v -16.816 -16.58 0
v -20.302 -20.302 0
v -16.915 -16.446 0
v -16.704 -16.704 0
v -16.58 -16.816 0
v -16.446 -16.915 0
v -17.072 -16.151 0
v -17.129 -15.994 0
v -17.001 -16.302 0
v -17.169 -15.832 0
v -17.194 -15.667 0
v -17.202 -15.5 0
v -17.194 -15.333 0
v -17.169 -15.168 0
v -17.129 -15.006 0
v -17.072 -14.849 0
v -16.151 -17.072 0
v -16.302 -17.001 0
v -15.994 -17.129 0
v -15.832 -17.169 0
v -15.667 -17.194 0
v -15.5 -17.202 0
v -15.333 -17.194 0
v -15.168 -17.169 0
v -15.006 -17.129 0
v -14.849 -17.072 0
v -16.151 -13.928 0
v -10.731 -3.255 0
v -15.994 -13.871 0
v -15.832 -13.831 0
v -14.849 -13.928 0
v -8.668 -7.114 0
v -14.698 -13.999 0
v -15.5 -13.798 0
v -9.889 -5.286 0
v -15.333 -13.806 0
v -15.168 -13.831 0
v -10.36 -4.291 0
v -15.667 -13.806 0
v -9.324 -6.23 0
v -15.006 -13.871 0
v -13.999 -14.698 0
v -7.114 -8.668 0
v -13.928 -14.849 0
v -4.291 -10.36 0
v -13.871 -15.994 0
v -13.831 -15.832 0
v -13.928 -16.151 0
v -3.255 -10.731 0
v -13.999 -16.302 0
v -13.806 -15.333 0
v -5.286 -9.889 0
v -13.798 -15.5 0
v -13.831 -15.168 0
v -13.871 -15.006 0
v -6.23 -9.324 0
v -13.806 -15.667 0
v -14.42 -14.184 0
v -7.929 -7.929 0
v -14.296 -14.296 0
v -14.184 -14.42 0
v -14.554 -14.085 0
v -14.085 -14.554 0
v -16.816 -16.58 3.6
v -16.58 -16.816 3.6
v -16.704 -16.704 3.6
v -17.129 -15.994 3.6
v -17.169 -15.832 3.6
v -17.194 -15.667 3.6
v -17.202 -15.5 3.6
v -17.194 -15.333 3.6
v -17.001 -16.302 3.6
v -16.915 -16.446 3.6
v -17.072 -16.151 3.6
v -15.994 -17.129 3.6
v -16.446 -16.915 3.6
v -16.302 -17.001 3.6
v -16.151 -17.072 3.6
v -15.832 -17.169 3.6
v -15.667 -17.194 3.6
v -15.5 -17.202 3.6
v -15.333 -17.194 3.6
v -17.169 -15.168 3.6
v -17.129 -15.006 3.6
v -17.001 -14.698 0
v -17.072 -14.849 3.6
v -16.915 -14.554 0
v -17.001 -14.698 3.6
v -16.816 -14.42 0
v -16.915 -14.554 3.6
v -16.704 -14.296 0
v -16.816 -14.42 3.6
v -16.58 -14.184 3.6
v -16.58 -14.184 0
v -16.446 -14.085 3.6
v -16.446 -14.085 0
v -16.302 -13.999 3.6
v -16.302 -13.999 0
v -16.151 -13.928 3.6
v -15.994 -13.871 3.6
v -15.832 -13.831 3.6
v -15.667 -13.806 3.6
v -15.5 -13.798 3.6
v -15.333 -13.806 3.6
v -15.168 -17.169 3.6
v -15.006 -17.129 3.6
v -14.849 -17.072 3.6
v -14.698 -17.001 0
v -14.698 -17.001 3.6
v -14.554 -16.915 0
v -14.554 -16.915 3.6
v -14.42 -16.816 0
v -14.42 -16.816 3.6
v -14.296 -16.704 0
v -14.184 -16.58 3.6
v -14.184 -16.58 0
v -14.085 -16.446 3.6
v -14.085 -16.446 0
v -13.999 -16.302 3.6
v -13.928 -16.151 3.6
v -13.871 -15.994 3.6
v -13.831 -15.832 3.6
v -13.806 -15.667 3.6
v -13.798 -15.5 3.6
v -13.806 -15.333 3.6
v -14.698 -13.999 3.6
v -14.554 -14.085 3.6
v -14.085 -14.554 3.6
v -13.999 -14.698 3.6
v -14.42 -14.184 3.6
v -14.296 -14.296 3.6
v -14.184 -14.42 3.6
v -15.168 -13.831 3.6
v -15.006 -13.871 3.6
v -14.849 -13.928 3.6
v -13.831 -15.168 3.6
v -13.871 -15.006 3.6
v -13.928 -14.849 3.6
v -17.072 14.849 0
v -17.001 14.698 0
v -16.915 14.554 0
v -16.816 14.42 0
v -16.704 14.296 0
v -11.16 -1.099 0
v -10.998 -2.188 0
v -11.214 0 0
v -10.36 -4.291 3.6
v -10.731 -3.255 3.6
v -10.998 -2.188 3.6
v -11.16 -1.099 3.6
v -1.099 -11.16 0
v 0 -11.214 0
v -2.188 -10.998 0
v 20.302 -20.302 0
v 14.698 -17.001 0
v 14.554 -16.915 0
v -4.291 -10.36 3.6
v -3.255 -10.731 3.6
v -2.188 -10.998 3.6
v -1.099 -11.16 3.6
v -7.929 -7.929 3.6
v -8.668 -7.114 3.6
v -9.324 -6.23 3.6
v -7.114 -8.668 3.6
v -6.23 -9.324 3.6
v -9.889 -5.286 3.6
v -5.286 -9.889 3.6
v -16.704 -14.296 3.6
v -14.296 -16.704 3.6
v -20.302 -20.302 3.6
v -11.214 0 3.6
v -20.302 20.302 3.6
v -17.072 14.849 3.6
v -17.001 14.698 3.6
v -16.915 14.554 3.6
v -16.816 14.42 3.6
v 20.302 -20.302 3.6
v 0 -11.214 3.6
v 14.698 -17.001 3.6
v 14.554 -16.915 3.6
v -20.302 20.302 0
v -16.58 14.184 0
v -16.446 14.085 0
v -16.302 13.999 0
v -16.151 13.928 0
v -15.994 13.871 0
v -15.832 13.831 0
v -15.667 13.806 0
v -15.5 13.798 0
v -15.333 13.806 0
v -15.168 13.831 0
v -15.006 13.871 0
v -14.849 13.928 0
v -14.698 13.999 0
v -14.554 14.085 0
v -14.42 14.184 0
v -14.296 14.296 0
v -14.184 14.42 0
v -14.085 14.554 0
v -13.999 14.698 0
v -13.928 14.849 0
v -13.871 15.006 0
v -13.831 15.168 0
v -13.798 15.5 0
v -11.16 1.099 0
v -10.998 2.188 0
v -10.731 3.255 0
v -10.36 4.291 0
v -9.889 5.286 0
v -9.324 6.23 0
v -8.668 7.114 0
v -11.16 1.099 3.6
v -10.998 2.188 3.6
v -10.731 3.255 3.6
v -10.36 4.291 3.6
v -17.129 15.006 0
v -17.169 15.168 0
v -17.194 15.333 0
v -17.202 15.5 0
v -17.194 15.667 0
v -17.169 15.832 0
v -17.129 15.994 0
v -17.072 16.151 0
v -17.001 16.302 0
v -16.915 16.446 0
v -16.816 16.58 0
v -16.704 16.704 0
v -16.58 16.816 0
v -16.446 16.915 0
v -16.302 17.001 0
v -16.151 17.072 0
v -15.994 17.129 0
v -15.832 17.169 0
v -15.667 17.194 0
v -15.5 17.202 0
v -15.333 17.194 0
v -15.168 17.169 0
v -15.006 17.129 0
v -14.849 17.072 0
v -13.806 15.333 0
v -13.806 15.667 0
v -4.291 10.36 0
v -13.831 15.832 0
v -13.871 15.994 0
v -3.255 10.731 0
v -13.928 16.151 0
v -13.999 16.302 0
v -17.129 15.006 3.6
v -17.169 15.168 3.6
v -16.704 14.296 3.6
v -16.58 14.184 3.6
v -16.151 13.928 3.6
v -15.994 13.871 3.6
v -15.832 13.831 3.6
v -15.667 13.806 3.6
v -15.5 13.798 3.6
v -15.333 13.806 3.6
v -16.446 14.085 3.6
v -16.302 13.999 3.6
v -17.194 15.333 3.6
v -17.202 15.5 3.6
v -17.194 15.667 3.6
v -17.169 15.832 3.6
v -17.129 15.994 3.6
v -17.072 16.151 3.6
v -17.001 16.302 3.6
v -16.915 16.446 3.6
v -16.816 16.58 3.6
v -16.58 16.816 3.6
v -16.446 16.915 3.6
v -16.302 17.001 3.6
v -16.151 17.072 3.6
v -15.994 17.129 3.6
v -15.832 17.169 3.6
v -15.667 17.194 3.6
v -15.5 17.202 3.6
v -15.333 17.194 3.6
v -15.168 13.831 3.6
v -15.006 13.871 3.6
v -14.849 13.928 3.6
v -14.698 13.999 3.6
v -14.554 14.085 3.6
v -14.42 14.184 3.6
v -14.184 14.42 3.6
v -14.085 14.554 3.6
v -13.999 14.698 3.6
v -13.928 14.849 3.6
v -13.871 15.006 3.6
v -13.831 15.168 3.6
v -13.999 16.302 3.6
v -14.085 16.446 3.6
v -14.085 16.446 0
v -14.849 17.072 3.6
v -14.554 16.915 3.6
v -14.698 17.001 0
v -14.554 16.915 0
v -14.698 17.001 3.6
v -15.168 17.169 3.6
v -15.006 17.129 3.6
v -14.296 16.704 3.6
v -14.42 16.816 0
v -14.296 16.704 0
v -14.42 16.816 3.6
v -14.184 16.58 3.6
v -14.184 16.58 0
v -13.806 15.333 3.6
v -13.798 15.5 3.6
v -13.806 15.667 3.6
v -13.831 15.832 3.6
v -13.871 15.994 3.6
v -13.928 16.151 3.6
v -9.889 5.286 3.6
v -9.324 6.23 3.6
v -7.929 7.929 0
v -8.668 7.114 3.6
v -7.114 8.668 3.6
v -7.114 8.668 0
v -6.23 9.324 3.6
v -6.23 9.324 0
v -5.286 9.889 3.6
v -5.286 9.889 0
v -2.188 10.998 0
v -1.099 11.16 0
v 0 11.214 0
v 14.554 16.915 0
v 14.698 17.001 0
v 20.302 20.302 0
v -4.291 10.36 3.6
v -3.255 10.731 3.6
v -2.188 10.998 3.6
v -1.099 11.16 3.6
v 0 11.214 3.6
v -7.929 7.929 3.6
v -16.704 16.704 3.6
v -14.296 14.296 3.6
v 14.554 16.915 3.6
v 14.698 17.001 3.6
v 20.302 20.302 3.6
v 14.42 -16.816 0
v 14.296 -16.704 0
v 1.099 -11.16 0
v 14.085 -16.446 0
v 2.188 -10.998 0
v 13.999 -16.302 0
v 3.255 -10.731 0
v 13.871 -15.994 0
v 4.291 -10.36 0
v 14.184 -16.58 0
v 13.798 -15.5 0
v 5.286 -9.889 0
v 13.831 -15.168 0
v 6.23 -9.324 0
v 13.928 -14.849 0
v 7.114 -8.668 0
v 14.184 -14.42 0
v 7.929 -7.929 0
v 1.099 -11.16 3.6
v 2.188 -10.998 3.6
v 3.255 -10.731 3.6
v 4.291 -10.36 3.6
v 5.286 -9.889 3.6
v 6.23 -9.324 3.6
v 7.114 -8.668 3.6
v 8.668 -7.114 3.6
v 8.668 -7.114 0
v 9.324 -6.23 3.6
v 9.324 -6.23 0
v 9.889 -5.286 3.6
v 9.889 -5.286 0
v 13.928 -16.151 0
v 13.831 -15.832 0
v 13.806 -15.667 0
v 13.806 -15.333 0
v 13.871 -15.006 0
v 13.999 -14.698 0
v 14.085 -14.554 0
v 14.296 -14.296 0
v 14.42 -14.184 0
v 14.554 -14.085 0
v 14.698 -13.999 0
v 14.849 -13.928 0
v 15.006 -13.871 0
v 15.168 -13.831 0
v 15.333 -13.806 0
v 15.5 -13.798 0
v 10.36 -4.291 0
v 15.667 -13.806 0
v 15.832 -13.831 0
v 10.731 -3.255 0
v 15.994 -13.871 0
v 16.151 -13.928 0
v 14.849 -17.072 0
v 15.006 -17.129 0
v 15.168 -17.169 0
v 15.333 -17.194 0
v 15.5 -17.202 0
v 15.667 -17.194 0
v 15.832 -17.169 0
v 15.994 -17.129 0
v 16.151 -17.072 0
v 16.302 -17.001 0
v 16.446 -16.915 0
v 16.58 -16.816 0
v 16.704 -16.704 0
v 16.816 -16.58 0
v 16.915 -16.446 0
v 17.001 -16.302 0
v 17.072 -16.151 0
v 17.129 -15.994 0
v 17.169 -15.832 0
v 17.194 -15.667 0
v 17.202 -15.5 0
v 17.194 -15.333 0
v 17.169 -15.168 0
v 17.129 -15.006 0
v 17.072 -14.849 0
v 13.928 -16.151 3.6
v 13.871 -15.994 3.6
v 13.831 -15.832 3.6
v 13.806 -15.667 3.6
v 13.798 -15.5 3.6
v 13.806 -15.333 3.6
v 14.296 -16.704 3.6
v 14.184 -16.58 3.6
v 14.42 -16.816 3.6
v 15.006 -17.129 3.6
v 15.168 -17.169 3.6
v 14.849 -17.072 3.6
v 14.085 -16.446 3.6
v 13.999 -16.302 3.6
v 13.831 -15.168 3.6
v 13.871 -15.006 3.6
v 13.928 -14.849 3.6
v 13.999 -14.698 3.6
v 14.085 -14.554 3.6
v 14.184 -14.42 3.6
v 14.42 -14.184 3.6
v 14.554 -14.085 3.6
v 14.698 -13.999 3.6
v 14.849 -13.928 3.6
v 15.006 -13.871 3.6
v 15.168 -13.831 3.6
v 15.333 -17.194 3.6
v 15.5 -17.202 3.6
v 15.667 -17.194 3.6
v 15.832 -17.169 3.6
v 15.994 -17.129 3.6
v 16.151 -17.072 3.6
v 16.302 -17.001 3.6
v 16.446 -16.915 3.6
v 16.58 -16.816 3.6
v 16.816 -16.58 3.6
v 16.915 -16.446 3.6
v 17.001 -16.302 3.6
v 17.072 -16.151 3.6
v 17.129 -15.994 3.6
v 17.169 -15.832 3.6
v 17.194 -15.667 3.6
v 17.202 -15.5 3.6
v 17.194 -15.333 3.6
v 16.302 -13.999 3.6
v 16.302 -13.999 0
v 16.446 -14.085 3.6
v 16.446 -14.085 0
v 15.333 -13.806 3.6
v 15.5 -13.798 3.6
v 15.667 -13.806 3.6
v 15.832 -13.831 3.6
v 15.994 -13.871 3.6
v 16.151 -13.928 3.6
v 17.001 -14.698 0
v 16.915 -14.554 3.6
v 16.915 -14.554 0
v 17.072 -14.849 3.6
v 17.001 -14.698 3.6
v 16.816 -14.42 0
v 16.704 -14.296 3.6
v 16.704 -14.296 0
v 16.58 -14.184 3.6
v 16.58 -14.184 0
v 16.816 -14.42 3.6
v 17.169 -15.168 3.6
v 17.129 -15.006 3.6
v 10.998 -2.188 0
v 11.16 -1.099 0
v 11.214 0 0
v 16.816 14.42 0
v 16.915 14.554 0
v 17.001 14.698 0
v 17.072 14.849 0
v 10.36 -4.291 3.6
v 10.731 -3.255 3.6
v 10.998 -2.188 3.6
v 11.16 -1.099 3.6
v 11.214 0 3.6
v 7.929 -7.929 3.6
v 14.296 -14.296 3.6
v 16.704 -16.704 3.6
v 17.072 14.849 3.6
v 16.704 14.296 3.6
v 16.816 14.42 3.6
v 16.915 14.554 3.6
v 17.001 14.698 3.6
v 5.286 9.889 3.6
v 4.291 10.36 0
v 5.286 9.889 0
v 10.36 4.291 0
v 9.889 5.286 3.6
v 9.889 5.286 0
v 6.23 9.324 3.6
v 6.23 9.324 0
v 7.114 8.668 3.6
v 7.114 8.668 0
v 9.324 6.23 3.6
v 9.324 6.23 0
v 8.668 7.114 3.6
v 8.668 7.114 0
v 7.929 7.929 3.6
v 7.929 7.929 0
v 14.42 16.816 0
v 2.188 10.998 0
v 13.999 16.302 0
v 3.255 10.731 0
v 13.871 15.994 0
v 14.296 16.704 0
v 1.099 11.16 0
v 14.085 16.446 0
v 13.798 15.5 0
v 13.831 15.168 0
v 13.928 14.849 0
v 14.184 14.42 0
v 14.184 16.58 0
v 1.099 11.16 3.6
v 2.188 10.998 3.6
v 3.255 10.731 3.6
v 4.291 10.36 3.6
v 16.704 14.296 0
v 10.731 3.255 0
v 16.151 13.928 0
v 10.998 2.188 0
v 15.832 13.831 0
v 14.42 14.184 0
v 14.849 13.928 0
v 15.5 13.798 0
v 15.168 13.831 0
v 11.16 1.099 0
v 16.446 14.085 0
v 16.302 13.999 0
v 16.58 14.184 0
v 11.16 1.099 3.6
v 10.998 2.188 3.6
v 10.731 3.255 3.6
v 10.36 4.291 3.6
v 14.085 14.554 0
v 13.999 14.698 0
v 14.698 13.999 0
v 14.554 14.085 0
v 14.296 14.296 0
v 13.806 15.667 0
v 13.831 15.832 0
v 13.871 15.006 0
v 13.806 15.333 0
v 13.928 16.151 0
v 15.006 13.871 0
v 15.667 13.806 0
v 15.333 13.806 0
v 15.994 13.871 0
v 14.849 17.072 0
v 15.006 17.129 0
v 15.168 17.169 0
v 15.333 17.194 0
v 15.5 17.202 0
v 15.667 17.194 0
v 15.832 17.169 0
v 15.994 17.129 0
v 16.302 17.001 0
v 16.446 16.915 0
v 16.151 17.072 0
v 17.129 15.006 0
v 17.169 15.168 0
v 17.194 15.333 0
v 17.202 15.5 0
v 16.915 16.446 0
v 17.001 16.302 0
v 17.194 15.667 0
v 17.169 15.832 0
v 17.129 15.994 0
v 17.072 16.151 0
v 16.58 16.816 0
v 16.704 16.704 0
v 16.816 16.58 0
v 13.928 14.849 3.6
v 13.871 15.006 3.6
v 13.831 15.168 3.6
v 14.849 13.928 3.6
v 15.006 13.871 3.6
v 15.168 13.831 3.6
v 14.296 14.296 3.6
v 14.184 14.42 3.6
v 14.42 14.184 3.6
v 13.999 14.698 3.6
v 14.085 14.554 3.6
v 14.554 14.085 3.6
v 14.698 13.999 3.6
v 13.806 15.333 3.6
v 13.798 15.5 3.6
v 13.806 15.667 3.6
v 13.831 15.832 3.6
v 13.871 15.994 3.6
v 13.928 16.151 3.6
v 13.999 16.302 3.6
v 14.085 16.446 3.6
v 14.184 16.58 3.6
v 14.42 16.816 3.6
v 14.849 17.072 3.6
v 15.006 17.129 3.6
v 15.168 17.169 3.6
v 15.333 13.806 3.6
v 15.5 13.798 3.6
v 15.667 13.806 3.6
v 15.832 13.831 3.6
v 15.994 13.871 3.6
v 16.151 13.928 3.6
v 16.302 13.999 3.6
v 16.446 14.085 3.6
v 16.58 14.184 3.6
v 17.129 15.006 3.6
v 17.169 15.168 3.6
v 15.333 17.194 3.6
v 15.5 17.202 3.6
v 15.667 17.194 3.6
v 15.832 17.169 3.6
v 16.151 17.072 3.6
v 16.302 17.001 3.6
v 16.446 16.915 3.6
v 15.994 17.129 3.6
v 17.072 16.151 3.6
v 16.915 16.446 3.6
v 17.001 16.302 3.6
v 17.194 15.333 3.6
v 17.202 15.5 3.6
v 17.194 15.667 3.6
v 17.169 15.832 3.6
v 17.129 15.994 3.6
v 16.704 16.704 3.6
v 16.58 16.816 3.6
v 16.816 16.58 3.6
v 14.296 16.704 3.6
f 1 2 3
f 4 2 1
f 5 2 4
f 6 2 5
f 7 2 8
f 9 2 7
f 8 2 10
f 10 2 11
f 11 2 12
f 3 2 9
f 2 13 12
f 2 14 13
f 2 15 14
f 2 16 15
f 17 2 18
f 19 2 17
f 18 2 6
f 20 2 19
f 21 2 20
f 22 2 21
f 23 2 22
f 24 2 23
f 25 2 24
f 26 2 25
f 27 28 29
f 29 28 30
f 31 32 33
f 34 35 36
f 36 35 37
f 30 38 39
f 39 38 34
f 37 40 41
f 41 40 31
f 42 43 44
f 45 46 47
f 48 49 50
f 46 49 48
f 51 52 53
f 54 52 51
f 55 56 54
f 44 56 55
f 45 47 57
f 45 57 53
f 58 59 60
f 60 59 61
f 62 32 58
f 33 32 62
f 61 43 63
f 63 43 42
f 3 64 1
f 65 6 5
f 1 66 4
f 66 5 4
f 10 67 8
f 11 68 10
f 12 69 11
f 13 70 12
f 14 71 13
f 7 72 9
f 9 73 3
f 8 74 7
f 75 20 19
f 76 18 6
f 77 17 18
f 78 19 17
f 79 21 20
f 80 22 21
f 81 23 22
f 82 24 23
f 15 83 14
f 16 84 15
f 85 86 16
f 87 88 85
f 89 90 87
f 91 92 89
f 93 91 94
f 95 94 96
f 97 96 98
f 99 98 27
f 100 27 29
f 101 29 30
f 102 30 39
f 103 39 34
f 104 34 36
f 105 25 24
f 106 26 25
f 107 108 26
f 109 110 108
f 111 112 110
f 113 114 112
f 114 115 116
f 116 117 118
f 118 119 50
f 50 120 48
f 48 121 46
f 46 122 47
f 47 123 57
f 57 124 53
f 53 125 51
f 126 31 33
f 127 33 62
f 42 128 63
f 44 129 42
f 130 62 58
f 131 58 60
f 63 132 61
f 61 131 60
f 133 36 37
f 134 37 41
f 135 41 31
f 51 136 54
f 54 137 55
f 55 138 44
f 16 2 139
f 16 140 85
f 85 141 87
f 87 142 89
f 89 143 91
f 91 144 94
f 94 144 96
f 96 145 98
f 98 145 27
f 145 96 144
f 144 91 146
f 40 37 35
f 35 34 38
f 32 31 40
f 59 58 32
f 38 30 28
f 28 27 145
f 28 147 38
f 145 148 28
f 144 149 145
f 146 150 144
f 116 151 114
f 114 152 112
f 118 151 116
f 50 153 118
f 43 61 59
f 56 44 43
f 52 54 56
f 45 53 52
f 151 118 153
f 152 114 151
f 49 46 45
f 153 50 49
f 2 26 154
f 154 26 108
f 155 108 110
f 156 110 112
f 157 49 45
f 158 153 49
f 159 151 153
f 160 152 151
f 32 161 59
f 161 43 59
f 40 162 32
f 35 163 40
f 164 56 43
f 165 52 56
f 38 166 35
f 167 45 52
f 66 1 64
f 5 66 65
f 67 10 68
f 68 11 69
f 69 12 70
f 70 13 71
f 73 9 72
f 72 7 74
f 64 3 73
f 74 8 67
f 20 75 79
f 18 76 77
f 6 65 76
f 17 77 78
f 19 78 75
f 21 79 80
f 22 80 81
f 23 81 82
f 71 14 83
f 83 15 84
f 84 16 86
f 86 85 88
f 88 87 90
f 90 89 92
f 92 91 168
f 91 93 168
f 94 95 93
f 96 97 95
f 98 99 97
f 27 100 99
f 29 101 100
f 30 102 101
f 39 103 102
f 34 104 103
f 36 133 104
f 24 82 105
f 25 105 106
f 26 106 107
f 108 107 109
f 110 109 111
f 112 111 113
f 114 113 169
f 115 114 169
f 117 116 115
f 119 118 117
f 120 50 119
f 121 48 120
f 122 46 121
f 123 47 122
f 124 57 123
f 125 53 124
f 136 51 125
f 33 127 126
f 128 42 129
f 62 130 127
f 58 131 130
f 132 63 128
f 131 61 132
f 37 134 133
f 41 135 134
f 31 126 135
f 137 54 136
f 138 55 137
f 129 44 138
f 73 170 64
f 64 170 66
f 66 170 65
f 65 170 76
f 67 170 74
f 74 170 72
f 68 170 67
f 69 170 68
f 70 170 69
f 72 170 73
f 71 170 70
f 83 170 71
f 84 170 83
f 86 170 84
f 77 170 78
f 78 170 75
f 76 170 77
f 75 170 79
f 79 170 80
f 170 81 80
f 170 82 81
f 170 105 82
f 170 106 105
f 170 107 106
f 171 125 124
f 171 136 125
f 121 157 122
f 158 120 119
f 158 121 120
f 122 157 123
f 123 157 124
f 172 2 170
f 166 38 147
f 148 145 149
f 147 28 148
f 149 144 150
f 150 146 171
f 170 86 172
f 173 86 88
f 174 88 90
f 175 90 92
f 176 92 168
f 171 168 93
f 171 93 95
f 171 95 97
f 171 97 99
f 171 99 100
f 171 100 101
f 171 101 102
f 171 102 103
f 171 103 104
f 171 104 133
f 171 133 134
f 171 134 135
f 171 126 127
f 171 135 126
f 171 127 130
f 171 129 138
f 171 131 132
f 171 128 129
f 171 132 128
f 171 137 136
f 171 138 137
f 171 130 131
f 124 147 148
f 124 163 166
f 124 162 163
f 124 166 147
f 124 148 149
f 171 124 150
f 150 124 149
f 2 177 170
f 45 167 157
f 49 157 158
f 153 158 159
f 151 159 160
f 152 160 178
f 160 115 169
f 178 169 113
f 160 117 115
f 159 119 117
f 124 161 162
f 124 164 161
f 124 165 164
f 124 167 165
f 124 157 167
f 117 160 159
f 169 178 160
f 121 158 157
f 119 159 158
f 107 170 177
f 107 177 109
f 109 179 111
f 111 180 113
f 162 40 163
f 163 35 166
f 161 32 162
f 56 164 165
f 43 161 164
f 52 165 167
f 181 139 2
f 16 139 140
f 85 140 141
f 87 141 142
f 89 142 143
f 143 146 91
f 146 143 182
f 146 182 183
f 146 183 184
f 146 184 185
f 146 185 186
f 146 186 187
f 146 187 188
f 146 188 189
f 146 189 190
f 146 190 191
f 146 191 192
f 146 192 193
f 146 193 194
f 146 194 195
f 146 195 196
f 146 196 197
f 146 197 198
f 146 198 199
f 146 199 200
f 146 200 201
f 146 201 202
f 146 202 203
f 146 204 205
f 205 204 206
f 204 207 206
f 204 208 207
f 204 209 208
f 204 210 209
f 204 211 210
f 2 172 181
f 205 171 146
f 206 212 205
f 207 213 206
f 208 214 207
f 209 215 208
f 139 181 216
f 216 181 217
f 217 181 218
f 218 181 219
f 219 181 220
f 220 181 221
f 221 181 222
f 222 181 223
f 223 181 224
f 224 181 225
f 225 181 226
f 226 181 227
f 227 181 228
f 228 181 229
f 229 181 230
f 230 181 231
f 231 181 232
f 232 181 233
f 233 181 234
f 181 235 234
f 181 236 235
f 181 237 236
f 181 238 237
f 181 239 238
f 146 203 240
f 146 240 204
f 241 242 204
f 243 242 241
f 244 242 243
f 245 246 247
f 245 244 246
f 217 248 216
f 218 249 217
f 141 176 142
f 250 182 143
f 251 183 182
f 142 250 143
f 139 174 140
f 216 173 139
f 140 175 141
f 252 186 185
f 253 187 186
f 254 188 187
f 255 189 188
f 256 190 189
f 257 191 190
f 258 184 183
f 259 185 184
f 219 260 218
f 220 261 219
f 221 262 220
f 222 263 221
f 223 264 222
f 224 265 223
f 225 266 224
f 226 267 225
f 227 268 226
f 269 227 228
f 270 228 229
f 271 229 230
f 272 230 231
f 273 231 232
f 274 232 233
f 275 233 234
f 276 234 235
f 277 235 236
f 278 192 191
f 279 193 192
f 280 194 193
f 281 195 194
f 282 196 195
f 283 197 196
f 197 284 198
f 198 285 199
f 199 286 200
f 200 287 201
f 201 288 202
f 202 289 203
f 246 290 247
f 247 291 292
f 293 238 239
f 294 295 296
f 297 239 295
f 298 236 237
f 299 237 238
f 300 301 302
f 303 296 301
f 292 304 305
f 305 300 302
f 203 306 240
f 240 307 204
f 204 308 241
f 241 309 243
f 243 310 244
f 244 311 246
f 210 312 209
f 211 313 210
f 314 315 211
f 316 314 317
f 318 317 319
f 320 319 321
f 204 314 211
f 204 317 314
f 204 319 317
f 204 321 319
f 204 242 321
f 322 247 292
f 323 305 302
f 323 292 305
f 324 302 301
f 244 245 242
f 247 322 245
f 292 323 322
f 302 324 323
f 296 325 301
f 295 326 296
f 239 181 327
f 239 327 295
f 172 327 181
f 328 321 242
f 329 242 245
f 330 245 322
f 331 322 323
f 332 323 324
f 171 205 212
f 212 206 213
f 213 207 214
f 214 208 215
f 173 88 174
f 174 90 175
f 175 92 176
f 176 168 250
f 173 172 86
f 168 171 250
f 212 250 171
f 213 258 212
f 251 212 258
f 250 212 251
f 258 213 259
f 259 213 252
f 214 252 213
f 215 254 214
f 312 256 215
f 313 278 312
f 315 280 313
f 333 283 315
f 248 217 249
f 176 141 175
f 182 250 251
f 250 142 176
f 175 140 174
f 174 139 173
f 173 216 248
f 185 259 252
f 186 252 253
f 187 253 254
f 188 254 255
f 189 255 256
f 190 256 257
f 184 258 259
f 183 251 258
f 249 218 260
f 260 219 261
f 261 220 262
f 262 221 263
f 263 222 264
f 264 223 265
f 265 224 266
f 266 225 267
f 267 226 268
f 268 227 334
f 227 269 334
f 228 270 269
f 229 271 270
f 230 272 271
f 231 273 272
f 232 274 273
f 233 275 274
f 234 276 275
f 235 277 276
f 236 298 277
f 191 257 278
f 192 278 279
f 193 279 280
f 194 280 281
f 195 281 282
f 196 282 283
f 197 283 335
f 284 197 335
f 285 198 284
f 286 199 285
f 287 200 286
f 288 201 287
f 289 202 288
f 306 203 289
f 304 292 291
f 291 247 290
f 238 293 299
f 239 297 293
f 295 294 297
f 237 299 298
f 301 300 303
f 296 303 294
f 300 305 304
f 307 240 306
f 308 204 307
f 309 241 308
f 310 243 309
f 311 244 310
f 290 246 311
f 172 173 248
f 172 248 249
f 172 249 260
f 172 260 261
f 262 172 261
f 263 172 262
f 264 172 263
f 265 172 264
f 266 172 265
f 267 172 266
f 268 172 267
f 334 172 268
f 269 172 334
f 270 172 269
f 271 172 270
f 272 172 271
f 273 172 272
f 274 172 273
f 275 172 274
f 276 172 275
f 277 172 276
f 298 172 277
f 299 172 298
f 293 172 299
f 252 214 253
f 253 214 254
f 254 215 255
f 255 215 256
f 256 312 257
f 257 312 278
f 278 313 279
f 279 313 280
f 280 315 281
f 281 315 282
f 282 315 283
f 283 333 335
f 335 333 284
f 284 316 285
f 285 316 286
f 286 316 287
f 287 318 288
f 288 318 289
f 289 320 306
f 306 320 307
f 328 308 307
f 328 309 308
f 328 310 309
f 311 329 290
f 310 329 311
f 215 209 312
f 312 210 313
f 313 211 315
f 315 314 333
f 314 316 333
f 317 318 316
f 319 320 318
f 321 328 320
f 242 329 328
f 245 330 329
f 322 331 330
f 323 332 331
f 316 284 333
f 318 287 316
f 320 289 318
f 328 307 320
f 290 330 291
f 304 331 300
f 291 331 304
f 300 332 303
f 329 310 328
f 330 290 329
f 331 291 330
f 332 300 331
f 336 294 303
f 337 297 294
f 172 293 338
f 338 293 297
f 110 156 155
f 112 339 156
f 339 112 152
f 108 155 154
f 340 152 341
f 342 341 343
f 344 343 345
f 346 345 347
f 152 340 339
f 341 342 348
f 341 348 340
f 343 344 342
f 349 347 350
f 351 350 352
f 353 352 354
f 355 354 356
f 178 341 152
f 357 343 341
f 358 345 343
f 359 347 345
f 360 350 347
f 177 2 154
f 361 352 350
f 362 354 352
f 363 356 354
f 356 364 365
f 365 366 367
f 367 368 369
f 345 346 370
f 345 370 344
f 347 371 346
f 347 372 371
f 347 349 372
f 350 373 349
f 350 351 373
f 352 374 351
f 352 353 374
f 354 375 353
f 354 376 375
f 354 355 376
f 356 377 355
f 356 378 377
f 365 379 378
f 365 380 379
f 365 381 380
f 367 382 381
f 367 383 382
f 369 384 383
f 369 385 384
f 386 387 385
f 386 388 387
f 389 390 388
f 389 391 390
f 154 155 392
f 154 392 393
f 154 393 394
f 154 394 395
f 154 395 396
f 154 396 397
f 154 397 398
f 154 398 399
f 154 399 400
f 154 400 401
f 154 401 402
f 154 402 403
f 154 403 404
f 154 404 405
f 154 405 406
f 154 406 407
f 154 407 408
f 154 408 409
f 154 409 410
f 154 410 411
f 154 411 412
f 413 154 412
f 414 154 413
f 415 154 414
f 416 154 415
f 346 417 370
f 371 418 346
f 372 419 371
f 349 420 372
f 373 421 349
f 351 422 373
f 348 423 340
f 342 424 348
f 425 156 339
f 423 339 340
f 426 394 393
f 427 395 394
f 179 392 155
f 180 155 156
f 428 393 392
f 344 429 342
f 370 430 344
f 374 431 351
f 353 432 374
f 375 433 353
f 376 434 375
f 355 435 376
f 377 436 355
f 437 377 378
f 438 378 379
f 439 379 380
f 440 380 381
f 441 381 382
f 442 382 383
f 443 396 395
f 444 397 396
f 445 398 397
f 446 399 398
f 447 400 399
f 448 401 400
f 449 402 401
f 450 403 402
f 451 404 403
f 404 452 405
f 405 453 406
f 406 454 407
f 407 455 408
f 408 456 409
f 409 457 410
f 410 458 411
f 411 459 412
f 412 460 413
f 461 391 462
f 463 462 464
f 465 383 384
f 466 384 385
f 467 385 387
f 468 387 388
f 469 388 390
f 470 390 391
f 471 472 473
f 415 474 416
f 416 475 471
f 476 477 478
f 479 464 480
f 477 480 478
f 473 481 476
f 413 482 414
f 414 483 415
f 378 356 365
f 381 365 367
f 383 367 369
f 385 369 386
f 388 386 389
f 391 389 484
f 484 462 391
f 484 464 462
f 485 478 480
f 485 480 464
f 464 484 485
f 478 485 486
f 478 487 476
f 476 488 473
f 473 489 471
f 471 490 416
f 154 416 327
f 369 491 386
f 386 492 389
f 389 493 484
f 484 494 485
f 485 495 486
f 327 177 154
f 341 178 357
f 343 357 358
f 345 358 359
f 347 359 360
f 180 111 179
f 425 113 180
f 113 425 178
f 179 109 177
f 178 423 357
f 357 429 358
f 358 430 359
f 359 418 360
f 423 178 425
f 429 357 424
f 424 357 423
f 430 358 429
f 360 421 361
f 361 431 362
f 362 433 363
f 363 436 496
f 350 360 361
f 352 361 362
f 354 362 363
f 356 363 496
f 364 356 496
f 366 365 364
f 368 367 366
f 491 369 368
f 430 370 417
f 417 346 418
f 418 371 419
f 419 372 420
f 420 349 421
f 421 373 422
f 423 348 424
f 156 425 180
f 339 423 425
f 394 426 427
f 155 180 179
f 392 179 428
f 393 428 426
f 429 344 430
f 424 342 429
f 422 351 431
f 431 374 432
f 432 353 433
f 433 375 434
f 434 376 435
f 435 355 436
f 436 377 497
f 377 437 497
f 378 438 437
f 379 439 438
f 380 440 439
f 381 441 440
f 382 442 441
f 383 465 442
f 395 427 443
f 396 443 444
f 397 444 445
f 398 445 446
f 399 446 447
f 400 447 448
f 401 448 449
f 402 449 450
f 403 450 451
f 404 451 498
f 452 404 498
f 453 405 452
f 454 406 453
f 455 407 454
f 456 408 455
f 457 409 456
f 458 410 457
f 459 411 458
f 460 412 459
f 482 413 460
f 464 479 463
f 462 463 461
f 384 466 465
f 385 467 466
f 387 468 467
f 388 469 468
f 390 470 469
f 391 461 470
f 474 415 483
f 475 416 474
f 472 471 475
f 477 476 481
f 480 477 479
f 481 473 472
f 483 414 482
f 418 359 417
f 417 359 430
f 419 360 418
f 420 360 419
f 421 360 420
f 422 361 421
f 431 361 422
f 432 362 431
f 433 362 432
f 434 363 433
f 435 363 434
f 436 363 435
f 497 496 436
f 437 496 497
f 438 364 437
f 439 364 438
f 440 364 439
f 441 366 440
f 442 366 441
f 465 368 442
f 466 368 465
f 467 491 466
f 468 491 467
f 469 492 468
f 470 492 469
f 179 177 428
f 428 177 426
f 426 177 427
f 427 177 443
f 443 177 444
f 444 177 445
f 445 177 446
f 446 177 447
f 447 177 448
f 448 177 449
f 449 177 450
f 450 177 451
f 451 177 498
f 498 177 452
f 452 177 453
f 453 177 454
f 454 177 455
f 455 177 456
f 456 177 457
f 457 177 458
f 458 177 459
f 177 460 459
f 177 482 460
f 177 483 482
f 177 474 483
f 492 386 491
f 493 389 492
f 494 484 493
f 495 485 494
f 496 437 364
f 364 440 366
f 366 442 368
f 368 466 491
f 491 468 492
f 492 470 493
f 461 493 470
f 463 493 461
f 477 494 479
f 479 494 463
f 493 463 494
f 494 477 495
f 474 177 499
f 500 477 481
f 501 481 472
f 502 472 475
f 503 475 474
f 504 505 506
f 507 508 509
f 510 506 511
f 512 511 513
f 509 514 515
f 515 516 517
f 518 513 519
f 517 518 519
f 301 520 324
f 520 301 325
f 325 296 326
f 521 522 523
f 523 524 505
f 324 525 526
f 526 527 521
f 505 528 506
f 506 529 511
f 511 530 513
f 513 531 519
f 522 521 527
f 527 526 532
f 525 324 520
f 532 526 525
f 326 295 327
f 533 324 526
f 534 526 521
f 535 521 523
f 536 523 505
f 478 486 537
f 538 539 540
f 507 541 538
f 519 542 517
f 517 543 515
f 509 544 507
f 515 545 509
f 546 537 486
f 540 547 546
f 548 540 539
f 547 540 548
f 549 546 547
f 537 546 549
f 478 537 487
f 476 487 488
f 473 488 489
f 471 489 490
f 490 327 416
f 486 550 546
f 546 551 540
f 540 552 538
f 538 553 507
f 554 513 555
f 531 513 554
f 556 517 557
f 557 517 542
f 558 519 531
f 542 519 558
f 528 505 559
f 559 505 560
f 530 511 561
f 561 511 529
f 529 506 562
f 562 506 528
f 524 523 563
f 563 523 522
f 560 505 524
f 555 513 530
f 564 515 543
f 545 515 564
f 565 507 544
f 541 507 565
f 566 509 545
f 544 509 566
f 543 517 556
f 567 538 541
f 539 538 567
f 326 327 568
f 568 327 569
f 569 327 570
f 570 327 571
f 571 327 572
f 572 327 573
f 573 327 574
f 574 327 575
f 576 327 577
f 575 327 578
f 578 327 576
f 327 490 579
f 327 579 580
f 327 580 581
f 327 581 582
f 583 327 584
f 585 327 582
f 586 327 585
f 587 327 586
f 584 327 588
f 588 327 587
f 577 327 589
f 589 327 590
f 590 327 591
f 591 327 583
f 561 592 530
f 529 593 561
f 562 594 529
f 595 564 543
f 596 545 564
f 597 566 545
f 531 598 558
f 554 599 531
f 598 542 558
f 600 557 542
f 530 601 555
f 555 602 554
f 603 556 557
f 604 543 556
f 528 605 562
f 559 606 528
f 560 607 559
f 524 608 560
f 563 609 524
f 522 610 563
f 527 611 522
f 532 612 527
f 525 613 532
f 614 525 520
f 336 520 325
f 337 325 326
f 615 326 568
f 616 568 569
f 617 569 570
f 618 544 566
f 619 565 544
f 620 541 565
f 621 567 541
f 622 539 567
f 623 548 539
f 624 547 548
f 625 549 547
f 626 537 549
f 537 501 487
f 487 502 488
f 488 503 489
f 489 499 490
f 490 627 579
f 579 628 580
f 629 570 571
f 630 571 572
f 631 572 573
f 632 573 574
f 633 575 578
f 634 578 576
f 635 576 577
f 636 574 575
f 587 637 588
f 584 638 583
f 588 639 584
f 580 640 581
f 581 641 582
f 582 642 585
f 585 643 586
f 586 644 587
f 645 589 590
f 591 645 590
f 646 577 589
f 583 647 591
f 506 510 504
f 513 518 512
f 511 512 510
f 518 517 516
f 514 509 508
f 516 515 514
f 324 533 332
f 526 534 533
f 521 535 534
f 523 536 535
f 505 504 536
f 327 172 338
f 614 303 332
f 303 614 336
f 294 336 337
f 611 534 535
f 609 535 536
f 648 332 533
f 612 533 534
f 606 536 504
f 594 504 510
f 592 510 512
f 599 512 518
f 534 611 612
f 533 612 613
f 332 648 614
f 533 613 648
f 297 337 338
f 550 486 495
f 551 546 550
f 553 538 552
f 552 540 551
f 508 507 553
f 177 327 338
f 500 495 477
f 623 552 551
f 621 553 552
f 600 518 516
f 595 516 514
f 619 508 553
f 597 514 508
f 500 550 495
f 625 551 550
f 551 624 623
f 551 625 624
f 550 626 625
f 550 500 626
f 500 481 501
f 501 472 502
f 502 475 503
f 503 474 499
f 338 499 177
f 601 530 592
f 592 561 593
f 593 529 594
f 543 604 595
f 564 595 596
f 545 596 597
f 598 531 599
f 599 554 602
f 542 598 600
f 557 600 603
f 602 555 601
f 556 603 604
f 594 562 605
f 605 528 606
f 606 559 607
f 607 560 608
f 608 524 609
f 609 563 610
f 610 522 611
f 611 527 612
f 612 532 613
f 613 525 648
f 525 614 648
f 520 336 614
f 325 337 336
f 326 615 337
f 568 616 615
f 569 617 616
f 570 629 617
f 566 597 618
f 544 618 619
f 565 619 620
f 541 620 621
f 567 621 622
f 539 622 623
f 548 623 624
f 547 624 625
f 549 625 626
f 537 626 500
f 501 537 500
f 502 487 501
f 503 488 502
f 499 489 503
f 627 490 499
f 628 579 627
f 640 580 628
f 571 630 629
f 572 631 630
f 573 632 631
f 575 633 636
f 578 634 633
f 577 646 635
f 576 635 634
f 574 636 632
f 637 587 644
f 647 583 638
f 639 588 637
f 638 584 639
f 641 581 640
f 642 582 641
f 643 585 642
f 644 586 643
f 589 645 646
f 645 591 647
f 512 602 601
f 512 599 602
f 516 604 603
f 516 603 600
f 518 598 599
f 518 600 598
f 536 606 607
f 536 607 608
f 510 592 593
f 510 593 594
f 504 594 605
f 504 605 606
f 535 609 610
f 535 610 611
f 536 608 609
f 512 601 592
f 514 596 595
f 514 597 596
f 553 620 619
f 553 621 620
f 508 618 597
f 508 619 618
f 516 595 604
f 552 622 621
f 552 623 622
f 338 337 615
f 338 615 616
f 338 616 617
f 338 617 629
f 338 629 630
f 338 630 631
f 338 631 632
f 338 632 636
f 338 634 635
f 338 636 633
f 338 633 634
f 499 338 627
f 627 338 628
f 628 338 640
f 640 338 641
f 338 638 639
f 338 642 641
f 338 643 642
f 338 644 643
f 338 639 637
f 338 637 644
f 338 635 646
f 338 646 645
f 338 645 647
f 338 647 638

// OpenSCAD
// assembly: printed bodies in the closed pose; references are % ghosts (never printed)
color("#4f81bd") {
  // body plate
  difference() {
    union() {
      // body plate (plate)
      multmatrix([[1, 0, 0, 0], [0, 1, 0, 0], [0, 0, 1, 0], [0, 0, 0, 1]]) translate([-20.30205, -20.30205, 0]) cube([40.6041, 40.6041, 3.6]);
    }
    // cut slot_0 (bolt_slot)
    multmatrix([[1, 0, 0, -15.5], [0, 1, 0, -15.5], [0, 0, 1, -1], [0, 0, 0, 1]]) linear_extrude(height=5.6) polygon(points=[[0, -1.70205], [0.16683, -1.693854], [0.332054, -1.669346], [0.494079, -1.62876], [0.651346, -1.572489], [0.802341, -1.501074], [0.945608, -1.415203], [1.079769, -1.315703], [1.203531, -1.203531], [1.315703, -1.079769], [1.415203, -0.945608], [1.501074, -0.802341], [1.572489, -0.651346], [1.62876, -0.494079], [1.669346, -0.332054], [1.693854, -0.16683], [1.70205, 0], [1.70205, 0], [1.693854, 0.16683], [1.669346, 0.332054], [1.62876, 0.494079], [1.572489, 0.651346], [1.501074, 0.802341], [1.415203, 0.945608], [1.315703, 1.079769], [1.203531, 1.203531], [1.079769, 1.315703], [0.945608, 1.415203], [0.802341, 1.501074], [0.651346, 1.572489], [0.494079, 1.62876], [0.332054, 1.669346], [0.16683, 1.693854], [0, 1.70205], [0, 1.70205], [-0.16683, 1.693854], [-0.332054, 1.669346], [-0.494079, 1.62876], [-0.651346, 1.572489], [-0.802341, 1.501074], [-0.945608, 1.415203], [-1.079769, 1.315703], [-1.203531, 1.203531], [-1.315703, 1.079769], [-1.415203, 0.945608], [-1.501074, 0.802341], [-1.572489, 0.651346], [-1.62876, 0.494079], [-1.669346, 0.332054], [-1.693854, 0.16683], [-1.70205, 0], [-1.70205, 0], [-1.693854, -0.16683], [-1.669346, -0.332054], [-1.62876, -0.494079], [-1.572489, -0.651346], [-1.501074, -0.802341], [-1.415203, -0.945608], [-1.315703, -1.079769], [-1.203531, -1.203531], [-1.079769, -1.315703], [-0.945608, -1.415203], [-0.802341, -1.501074], [-0.651346, -1.572489], [-0.494079, -1.62876], [-0.332054, -1.669346], [-0.16683, -1.693854], [0, -1.70205]]);
    // cut slot_1 (bolt_slot)
    multmatrix([[1, 0, 0, 15.5], [0, 1, 0, -15.5], [0, 0, 1, -1], [0, 0, 0, 1]]) linear_extrude(height=5.6) polygon(points=[[0, -1.70205], [0.16683, -1.693854], [0.332054, -1.669346], [0.494079, -1.62876], [0.651346, -1.572489], [0.802341, -1.501074], [0.945608, -1.415203], [1.079769, -1.315703], [1.203531, -1.203531], [1.315703, -1.079769], [1.415203, -0.945608], [1.501074, -0.802341], [1.572489, -0.651346], [1.62876, -0.494079], [1.669346, -0.332054], [1.693854, -0.16683], [1.70205, 0], [1.70205, 0], [1.693854, 0.16683], [1.669346, 0.332054], [1.62876, 0.494079], [1.572489, 0.651346], [1.501074, 0.802341], [1.415203, 0.945608], [1.315703, 1.079769], [1.203531, 1.203531], [1.079769, 1.315703], [0.945608, 1.415203], [0.802341, 1.501074], [0.651346, 1.572489], [0.494079, 1.62876], [0.332054, 1.669346], [0.16683, 1.693854], [0, 1.70205], [0, 1.70205], [-0.16683, 1.693854], [-0.332054, 1.669346], [-0.494079, 1.62876], [-0.651346, 1.572489], [-0.802341, 1.501074], [-0.945608, 1.415203], [-1.079769, 1.315703], [-1.203531, 1.203531], [-1.315703, 1.079769], [-1.415203, 0.945608], [-1.501074, 0.802341], [-1.572489, 0.651346], [-1.62876, 0.494079], [-1.669346, 0.332054], [-1.693854, 0.16683], [-1.70205, 0], [-1.70205, 0], [-1.693854, -0.16683], [-1.669346, -0.332054], [-1.62876, -0.494079], [-1.572489, -0.651346], [-1.501074, -0.802341], [-1.415203, -0.945608], [-1.315703, -1.079769], [-1.203531, -1.203531], [-1.079769, -1.315703], [-0.945608, -1.415203], [-0.802341, -1.501074], [-0.651346, -1.572489], [-0.494079, -1.62876], [-0.332054, -1.669346], [-0.16683, -1.693854], [0, -1.70205]]);
    // cut slot_2 (bolt_slot)
    multmatrix([[1, 0, 0, -15.5], [0, 1, 0, 15.5], [0, 0, 1, -1], [0, 0, 0, 1]]) linear_extrude(height=5.6) polygon(points=[[0, -1.70205], [0.16683, -1.693854], [0.332054, -1.669346], [0.494079, -1.62876], [0.651346, -1.572489], [0.802341, -1.501074], [0.945608, -1.415203], [1.079769, -1.315703], [1.203531, -1.203531], [1.315703, -1.079769], [1.415203, -0.945608], [1.501074, -0.802341], [1.572489, -0.651346], [1.62876, -0.494079], [1.669346, -0.332054], [1.693854, -0.16683], [1.70205, 0], [1.70205, 0], [1.693854, 0.16683], [1.669346, 0.332054], [1.62876, 0.494079], [1.572489, 0.651346], [1.501074, 0.802341], [1.415203, 0.945608], [1.315703, 1.079769], [1.203531, 1.203531], [1.079769, 1.315703], [0.945608, 1.415203], [0.802341, 1.501074], [0.651346, 1.572489], [0.494079, 1.62876], [0.332054, 1.669346], [0.16683, 1.693854], [0, 1.70205], [0, 1.70205], [-0.16683, 1.693854], [-0.332054, 1.669346], [-0.494079, 1.62876], [-0.651346, 1.572489], [-0.802341, 1.501074], [-0.945608, 1.415203], [-1.079769, 1.315703], [-1.203531, 1.203531], [-1.315703, 1.079769], [-1.415203, 0.945608], [-1.501074, 0.802341], [-1.572489, 0.651346], [-1.62876, 0.494079], [-1.669346, 0.332054], [-1.693854, 0.16683], [-1.70205, 0], [-1.70205, 0], [-1.693854, -0.16683], [-1.669346, -0.332054], [-1.62876, -0.494079], [-1.572489, -0.651346], [-1.501074, -0.802341], [-1.415203, -0.945608], [-1.315703, -1.079769], [-1.203531, -1.203531], [-1.079769, -1.315703], [-0.945608, -1.415203], [-0.802341, -1.501074], [-0.651346, -1.572489], [-0.494079, -1.62876], [-0.332054, -1.669346], [-0.16683, -1.693854], [0, -1.70205]]);
    // cut slot_3 (bolt_slot)
    multmatrix([[1, 0, 0, 15.5], [0, 1, 0, 15.5], [0, 0, 1, -1], [0, 0, 0, 1]]) linear_extrude(height=5.6) polygon(points=[[0, -1.70205], [0.16683, -1.693854], [0.332054, -1.669346], [0.494079, -1.62876], [0.651346, -1.572489], [0.802341, -1.501074], [0.945608, -1.415203], [1.079769, -1.315703], [1.203531, -1.203531], [1.315703, -1.079769], [1.415203, -0.945608], [1.501074, -0.802341], [1.572489, -0.651346], [1.62876, -0.494079], [1.669346, -0.332054], [1.693854, -0.16683], [1.70205, 0], [1.70205, 0], [1.693854, 0.16683], [1.669346, 0.332054], [1.62876, 0.494079], [1.572489, 0.651346], [1.501074, 0.802341], [1.415203, 0.945608], [1.315703, 1.079769], [1.203531, 1.203531], [1.079769, 1.315703], [0.945608, 1.415203], [0.802341, 1.501074], [0.651346, 1.572489], [0.494079, 1.62876], [0.332054, 1.669346], [0.16683, 1.693854], [0, 1.70205], [0, 1.70205], [-0.16683, 1.693854], [-0.332054, 1.669346], [-0.494079, 1.62876], [-0.651346, 1.572489], [-0.802341, 1.501074], [-0.945608, 1.415203], [-1.079769, 1.315703], [-1.203531, 1.203531], [-1.315703, 1.079769], [-1.415203, 0.945608], [-1.501074, 0.802341], [-1.572489, 0.651346], [-1.62876, 0.494079], [-1.669346, 0.332054], [-1.693854, 0.16683], [-1.70205, 0], [-1.70205, 0], [-1.693854, -0.16683], [-1.669346, -0.332054], [-1.62876, -0.494079], [-1.572489, -0.651346], [-1.501074, -0.802341], [-1.415203, -0.945608], [-1.315703, -1.079769], [-1.203531, -1.203531], [-1.079769, -1.315703], [-0.945608, -1.415203], [-0.802341, -1.501074], [-0.651346, -1.572489], [-0.494079, -1.62876], [-0.332054, -1.669346], [-0.16683, -1.693854], [0, -1.70205]]);
    // cut clear_pilot (recess)
    multmatrix([[1, 0, 0, 0], [0, 1, 0, 0], [0, 0, 1, -1], [0, 0, 0, 1]]) cylinder(h=5.6, d=22.427014, $fn=64);
    // cut clear_shaft (recess)
    multmatrix([[1, 0, 0, 0], [0, 1, 0, 0], [0, 0, 1, -1], [0, 0, 0, 1]]) cylinder(h=5.6, d=5.406512, $fn=64);
  }
}
%color("#7f7f7f") multmatrix([[1, 0, 0, 0], [0, 1, 0, 0], [0, 0, 1, 0], [0, 0, 0, 1]]) union() { multmatrix([[1, 0, 0, -21.15], [0, 1, 0, -21.15], [0, 0, 1, -40], [0, 0, 0, 1]]) cube([42.3, 42.3, 40]); multmatrix([[1, 0, 0, 0], [0, 1, 0, 0], [0, 0, 1, 0], [0, 0, 0, 1]]) cylinder(h=2, d=22, $fn=64); multmatrix([[1, 0, 0, 0], [0, 1, 0, 0], [0, 0, 1, 0], [0, 0, 0, 1]]) cylinder(h=24, d=5, $fn=64); } // ghost board
%color("#7f7f7f") multmatrix([[1, 0, 0, -15.5], [0, 1, 0, -15.5], [0, 0, 1, 3.6], [0, 0, 0, 1]]) union() { multmatrix([[1, 0, 0, 0], [0, 1, 0, 0], [0, 0, 1, -8], [0, 0, 0, 1]]) cylinder(h=8, d=3, $fn=64); multmatrix([[1, 0, 0, 0], [0, 1, 0, 0], [0, 0, 1, 0], [0, 0, 0, 1]]) cylinder(h=3, d=5.5, $fn=64); } // ghost bolt_0
%color("#7f7f7f") multmatrix([[1, 0, 0, 15.5], [0, 1, 0, -15.5], [0, 0, 1, 3.6], [0, 0, 0, 1]]) union() { multmatrix([[1, 0, 0, 0], [0, 1, 0, 0], [0, 0, 1, -8], [0, 0, 0, 1]]) cylinder(h=8, d=3, $fn=64); multmatrix([[1, 0, 0, 0], [0, 1, 0, 0], [0, 0, 1, 0], [0, 0, 0, 1]]) cylinder(h=3, d=5.5, $fn=64); } // ghost bolt_1
%color("#7f7f7f") multmatrix([[1, 0, 0, -15.5], [0, 1, 0, 15.5], [0, 0, 1, 3.6], [0, 0, 0, 1]]) union() { multmatrix([[1, 0, 0, 0], [0, 1, 0, 0], [0, 0, 1, -8], [0, 0, 0, 1]]) cylinder(h=8, d=3, $fn=64); multmatrix([[1, 0, 0, 0], [0, 1, 0, 0], [0, 0, 1, 0], [0, 0, 0, 1]]) cylinder(h=3, d=5.5, $fn=64); } // ghost bolt_2
%color("#7f7f7f") multmatrix([[1, 0, 0, 15.5], [0, 1, 0, 15.5], [0, 0, 1, 3.6], [0, 0, 0, 1]]) union() { multmatrix([[1, 0, 0, 0], [0, 1, 0, 0], [0, 0, 1, -8], [0, 0, 0, 1]]) cylinder(h=8, d=3, $fn=64); multmatrix([[1, 0, 0, 0], [0, 1, 0, 0], [0, 0, 1, 0], [0, 0, 0, 1]]) cylinder(h=3, d=5.5, $fn=64); } // ghost bolt_3
